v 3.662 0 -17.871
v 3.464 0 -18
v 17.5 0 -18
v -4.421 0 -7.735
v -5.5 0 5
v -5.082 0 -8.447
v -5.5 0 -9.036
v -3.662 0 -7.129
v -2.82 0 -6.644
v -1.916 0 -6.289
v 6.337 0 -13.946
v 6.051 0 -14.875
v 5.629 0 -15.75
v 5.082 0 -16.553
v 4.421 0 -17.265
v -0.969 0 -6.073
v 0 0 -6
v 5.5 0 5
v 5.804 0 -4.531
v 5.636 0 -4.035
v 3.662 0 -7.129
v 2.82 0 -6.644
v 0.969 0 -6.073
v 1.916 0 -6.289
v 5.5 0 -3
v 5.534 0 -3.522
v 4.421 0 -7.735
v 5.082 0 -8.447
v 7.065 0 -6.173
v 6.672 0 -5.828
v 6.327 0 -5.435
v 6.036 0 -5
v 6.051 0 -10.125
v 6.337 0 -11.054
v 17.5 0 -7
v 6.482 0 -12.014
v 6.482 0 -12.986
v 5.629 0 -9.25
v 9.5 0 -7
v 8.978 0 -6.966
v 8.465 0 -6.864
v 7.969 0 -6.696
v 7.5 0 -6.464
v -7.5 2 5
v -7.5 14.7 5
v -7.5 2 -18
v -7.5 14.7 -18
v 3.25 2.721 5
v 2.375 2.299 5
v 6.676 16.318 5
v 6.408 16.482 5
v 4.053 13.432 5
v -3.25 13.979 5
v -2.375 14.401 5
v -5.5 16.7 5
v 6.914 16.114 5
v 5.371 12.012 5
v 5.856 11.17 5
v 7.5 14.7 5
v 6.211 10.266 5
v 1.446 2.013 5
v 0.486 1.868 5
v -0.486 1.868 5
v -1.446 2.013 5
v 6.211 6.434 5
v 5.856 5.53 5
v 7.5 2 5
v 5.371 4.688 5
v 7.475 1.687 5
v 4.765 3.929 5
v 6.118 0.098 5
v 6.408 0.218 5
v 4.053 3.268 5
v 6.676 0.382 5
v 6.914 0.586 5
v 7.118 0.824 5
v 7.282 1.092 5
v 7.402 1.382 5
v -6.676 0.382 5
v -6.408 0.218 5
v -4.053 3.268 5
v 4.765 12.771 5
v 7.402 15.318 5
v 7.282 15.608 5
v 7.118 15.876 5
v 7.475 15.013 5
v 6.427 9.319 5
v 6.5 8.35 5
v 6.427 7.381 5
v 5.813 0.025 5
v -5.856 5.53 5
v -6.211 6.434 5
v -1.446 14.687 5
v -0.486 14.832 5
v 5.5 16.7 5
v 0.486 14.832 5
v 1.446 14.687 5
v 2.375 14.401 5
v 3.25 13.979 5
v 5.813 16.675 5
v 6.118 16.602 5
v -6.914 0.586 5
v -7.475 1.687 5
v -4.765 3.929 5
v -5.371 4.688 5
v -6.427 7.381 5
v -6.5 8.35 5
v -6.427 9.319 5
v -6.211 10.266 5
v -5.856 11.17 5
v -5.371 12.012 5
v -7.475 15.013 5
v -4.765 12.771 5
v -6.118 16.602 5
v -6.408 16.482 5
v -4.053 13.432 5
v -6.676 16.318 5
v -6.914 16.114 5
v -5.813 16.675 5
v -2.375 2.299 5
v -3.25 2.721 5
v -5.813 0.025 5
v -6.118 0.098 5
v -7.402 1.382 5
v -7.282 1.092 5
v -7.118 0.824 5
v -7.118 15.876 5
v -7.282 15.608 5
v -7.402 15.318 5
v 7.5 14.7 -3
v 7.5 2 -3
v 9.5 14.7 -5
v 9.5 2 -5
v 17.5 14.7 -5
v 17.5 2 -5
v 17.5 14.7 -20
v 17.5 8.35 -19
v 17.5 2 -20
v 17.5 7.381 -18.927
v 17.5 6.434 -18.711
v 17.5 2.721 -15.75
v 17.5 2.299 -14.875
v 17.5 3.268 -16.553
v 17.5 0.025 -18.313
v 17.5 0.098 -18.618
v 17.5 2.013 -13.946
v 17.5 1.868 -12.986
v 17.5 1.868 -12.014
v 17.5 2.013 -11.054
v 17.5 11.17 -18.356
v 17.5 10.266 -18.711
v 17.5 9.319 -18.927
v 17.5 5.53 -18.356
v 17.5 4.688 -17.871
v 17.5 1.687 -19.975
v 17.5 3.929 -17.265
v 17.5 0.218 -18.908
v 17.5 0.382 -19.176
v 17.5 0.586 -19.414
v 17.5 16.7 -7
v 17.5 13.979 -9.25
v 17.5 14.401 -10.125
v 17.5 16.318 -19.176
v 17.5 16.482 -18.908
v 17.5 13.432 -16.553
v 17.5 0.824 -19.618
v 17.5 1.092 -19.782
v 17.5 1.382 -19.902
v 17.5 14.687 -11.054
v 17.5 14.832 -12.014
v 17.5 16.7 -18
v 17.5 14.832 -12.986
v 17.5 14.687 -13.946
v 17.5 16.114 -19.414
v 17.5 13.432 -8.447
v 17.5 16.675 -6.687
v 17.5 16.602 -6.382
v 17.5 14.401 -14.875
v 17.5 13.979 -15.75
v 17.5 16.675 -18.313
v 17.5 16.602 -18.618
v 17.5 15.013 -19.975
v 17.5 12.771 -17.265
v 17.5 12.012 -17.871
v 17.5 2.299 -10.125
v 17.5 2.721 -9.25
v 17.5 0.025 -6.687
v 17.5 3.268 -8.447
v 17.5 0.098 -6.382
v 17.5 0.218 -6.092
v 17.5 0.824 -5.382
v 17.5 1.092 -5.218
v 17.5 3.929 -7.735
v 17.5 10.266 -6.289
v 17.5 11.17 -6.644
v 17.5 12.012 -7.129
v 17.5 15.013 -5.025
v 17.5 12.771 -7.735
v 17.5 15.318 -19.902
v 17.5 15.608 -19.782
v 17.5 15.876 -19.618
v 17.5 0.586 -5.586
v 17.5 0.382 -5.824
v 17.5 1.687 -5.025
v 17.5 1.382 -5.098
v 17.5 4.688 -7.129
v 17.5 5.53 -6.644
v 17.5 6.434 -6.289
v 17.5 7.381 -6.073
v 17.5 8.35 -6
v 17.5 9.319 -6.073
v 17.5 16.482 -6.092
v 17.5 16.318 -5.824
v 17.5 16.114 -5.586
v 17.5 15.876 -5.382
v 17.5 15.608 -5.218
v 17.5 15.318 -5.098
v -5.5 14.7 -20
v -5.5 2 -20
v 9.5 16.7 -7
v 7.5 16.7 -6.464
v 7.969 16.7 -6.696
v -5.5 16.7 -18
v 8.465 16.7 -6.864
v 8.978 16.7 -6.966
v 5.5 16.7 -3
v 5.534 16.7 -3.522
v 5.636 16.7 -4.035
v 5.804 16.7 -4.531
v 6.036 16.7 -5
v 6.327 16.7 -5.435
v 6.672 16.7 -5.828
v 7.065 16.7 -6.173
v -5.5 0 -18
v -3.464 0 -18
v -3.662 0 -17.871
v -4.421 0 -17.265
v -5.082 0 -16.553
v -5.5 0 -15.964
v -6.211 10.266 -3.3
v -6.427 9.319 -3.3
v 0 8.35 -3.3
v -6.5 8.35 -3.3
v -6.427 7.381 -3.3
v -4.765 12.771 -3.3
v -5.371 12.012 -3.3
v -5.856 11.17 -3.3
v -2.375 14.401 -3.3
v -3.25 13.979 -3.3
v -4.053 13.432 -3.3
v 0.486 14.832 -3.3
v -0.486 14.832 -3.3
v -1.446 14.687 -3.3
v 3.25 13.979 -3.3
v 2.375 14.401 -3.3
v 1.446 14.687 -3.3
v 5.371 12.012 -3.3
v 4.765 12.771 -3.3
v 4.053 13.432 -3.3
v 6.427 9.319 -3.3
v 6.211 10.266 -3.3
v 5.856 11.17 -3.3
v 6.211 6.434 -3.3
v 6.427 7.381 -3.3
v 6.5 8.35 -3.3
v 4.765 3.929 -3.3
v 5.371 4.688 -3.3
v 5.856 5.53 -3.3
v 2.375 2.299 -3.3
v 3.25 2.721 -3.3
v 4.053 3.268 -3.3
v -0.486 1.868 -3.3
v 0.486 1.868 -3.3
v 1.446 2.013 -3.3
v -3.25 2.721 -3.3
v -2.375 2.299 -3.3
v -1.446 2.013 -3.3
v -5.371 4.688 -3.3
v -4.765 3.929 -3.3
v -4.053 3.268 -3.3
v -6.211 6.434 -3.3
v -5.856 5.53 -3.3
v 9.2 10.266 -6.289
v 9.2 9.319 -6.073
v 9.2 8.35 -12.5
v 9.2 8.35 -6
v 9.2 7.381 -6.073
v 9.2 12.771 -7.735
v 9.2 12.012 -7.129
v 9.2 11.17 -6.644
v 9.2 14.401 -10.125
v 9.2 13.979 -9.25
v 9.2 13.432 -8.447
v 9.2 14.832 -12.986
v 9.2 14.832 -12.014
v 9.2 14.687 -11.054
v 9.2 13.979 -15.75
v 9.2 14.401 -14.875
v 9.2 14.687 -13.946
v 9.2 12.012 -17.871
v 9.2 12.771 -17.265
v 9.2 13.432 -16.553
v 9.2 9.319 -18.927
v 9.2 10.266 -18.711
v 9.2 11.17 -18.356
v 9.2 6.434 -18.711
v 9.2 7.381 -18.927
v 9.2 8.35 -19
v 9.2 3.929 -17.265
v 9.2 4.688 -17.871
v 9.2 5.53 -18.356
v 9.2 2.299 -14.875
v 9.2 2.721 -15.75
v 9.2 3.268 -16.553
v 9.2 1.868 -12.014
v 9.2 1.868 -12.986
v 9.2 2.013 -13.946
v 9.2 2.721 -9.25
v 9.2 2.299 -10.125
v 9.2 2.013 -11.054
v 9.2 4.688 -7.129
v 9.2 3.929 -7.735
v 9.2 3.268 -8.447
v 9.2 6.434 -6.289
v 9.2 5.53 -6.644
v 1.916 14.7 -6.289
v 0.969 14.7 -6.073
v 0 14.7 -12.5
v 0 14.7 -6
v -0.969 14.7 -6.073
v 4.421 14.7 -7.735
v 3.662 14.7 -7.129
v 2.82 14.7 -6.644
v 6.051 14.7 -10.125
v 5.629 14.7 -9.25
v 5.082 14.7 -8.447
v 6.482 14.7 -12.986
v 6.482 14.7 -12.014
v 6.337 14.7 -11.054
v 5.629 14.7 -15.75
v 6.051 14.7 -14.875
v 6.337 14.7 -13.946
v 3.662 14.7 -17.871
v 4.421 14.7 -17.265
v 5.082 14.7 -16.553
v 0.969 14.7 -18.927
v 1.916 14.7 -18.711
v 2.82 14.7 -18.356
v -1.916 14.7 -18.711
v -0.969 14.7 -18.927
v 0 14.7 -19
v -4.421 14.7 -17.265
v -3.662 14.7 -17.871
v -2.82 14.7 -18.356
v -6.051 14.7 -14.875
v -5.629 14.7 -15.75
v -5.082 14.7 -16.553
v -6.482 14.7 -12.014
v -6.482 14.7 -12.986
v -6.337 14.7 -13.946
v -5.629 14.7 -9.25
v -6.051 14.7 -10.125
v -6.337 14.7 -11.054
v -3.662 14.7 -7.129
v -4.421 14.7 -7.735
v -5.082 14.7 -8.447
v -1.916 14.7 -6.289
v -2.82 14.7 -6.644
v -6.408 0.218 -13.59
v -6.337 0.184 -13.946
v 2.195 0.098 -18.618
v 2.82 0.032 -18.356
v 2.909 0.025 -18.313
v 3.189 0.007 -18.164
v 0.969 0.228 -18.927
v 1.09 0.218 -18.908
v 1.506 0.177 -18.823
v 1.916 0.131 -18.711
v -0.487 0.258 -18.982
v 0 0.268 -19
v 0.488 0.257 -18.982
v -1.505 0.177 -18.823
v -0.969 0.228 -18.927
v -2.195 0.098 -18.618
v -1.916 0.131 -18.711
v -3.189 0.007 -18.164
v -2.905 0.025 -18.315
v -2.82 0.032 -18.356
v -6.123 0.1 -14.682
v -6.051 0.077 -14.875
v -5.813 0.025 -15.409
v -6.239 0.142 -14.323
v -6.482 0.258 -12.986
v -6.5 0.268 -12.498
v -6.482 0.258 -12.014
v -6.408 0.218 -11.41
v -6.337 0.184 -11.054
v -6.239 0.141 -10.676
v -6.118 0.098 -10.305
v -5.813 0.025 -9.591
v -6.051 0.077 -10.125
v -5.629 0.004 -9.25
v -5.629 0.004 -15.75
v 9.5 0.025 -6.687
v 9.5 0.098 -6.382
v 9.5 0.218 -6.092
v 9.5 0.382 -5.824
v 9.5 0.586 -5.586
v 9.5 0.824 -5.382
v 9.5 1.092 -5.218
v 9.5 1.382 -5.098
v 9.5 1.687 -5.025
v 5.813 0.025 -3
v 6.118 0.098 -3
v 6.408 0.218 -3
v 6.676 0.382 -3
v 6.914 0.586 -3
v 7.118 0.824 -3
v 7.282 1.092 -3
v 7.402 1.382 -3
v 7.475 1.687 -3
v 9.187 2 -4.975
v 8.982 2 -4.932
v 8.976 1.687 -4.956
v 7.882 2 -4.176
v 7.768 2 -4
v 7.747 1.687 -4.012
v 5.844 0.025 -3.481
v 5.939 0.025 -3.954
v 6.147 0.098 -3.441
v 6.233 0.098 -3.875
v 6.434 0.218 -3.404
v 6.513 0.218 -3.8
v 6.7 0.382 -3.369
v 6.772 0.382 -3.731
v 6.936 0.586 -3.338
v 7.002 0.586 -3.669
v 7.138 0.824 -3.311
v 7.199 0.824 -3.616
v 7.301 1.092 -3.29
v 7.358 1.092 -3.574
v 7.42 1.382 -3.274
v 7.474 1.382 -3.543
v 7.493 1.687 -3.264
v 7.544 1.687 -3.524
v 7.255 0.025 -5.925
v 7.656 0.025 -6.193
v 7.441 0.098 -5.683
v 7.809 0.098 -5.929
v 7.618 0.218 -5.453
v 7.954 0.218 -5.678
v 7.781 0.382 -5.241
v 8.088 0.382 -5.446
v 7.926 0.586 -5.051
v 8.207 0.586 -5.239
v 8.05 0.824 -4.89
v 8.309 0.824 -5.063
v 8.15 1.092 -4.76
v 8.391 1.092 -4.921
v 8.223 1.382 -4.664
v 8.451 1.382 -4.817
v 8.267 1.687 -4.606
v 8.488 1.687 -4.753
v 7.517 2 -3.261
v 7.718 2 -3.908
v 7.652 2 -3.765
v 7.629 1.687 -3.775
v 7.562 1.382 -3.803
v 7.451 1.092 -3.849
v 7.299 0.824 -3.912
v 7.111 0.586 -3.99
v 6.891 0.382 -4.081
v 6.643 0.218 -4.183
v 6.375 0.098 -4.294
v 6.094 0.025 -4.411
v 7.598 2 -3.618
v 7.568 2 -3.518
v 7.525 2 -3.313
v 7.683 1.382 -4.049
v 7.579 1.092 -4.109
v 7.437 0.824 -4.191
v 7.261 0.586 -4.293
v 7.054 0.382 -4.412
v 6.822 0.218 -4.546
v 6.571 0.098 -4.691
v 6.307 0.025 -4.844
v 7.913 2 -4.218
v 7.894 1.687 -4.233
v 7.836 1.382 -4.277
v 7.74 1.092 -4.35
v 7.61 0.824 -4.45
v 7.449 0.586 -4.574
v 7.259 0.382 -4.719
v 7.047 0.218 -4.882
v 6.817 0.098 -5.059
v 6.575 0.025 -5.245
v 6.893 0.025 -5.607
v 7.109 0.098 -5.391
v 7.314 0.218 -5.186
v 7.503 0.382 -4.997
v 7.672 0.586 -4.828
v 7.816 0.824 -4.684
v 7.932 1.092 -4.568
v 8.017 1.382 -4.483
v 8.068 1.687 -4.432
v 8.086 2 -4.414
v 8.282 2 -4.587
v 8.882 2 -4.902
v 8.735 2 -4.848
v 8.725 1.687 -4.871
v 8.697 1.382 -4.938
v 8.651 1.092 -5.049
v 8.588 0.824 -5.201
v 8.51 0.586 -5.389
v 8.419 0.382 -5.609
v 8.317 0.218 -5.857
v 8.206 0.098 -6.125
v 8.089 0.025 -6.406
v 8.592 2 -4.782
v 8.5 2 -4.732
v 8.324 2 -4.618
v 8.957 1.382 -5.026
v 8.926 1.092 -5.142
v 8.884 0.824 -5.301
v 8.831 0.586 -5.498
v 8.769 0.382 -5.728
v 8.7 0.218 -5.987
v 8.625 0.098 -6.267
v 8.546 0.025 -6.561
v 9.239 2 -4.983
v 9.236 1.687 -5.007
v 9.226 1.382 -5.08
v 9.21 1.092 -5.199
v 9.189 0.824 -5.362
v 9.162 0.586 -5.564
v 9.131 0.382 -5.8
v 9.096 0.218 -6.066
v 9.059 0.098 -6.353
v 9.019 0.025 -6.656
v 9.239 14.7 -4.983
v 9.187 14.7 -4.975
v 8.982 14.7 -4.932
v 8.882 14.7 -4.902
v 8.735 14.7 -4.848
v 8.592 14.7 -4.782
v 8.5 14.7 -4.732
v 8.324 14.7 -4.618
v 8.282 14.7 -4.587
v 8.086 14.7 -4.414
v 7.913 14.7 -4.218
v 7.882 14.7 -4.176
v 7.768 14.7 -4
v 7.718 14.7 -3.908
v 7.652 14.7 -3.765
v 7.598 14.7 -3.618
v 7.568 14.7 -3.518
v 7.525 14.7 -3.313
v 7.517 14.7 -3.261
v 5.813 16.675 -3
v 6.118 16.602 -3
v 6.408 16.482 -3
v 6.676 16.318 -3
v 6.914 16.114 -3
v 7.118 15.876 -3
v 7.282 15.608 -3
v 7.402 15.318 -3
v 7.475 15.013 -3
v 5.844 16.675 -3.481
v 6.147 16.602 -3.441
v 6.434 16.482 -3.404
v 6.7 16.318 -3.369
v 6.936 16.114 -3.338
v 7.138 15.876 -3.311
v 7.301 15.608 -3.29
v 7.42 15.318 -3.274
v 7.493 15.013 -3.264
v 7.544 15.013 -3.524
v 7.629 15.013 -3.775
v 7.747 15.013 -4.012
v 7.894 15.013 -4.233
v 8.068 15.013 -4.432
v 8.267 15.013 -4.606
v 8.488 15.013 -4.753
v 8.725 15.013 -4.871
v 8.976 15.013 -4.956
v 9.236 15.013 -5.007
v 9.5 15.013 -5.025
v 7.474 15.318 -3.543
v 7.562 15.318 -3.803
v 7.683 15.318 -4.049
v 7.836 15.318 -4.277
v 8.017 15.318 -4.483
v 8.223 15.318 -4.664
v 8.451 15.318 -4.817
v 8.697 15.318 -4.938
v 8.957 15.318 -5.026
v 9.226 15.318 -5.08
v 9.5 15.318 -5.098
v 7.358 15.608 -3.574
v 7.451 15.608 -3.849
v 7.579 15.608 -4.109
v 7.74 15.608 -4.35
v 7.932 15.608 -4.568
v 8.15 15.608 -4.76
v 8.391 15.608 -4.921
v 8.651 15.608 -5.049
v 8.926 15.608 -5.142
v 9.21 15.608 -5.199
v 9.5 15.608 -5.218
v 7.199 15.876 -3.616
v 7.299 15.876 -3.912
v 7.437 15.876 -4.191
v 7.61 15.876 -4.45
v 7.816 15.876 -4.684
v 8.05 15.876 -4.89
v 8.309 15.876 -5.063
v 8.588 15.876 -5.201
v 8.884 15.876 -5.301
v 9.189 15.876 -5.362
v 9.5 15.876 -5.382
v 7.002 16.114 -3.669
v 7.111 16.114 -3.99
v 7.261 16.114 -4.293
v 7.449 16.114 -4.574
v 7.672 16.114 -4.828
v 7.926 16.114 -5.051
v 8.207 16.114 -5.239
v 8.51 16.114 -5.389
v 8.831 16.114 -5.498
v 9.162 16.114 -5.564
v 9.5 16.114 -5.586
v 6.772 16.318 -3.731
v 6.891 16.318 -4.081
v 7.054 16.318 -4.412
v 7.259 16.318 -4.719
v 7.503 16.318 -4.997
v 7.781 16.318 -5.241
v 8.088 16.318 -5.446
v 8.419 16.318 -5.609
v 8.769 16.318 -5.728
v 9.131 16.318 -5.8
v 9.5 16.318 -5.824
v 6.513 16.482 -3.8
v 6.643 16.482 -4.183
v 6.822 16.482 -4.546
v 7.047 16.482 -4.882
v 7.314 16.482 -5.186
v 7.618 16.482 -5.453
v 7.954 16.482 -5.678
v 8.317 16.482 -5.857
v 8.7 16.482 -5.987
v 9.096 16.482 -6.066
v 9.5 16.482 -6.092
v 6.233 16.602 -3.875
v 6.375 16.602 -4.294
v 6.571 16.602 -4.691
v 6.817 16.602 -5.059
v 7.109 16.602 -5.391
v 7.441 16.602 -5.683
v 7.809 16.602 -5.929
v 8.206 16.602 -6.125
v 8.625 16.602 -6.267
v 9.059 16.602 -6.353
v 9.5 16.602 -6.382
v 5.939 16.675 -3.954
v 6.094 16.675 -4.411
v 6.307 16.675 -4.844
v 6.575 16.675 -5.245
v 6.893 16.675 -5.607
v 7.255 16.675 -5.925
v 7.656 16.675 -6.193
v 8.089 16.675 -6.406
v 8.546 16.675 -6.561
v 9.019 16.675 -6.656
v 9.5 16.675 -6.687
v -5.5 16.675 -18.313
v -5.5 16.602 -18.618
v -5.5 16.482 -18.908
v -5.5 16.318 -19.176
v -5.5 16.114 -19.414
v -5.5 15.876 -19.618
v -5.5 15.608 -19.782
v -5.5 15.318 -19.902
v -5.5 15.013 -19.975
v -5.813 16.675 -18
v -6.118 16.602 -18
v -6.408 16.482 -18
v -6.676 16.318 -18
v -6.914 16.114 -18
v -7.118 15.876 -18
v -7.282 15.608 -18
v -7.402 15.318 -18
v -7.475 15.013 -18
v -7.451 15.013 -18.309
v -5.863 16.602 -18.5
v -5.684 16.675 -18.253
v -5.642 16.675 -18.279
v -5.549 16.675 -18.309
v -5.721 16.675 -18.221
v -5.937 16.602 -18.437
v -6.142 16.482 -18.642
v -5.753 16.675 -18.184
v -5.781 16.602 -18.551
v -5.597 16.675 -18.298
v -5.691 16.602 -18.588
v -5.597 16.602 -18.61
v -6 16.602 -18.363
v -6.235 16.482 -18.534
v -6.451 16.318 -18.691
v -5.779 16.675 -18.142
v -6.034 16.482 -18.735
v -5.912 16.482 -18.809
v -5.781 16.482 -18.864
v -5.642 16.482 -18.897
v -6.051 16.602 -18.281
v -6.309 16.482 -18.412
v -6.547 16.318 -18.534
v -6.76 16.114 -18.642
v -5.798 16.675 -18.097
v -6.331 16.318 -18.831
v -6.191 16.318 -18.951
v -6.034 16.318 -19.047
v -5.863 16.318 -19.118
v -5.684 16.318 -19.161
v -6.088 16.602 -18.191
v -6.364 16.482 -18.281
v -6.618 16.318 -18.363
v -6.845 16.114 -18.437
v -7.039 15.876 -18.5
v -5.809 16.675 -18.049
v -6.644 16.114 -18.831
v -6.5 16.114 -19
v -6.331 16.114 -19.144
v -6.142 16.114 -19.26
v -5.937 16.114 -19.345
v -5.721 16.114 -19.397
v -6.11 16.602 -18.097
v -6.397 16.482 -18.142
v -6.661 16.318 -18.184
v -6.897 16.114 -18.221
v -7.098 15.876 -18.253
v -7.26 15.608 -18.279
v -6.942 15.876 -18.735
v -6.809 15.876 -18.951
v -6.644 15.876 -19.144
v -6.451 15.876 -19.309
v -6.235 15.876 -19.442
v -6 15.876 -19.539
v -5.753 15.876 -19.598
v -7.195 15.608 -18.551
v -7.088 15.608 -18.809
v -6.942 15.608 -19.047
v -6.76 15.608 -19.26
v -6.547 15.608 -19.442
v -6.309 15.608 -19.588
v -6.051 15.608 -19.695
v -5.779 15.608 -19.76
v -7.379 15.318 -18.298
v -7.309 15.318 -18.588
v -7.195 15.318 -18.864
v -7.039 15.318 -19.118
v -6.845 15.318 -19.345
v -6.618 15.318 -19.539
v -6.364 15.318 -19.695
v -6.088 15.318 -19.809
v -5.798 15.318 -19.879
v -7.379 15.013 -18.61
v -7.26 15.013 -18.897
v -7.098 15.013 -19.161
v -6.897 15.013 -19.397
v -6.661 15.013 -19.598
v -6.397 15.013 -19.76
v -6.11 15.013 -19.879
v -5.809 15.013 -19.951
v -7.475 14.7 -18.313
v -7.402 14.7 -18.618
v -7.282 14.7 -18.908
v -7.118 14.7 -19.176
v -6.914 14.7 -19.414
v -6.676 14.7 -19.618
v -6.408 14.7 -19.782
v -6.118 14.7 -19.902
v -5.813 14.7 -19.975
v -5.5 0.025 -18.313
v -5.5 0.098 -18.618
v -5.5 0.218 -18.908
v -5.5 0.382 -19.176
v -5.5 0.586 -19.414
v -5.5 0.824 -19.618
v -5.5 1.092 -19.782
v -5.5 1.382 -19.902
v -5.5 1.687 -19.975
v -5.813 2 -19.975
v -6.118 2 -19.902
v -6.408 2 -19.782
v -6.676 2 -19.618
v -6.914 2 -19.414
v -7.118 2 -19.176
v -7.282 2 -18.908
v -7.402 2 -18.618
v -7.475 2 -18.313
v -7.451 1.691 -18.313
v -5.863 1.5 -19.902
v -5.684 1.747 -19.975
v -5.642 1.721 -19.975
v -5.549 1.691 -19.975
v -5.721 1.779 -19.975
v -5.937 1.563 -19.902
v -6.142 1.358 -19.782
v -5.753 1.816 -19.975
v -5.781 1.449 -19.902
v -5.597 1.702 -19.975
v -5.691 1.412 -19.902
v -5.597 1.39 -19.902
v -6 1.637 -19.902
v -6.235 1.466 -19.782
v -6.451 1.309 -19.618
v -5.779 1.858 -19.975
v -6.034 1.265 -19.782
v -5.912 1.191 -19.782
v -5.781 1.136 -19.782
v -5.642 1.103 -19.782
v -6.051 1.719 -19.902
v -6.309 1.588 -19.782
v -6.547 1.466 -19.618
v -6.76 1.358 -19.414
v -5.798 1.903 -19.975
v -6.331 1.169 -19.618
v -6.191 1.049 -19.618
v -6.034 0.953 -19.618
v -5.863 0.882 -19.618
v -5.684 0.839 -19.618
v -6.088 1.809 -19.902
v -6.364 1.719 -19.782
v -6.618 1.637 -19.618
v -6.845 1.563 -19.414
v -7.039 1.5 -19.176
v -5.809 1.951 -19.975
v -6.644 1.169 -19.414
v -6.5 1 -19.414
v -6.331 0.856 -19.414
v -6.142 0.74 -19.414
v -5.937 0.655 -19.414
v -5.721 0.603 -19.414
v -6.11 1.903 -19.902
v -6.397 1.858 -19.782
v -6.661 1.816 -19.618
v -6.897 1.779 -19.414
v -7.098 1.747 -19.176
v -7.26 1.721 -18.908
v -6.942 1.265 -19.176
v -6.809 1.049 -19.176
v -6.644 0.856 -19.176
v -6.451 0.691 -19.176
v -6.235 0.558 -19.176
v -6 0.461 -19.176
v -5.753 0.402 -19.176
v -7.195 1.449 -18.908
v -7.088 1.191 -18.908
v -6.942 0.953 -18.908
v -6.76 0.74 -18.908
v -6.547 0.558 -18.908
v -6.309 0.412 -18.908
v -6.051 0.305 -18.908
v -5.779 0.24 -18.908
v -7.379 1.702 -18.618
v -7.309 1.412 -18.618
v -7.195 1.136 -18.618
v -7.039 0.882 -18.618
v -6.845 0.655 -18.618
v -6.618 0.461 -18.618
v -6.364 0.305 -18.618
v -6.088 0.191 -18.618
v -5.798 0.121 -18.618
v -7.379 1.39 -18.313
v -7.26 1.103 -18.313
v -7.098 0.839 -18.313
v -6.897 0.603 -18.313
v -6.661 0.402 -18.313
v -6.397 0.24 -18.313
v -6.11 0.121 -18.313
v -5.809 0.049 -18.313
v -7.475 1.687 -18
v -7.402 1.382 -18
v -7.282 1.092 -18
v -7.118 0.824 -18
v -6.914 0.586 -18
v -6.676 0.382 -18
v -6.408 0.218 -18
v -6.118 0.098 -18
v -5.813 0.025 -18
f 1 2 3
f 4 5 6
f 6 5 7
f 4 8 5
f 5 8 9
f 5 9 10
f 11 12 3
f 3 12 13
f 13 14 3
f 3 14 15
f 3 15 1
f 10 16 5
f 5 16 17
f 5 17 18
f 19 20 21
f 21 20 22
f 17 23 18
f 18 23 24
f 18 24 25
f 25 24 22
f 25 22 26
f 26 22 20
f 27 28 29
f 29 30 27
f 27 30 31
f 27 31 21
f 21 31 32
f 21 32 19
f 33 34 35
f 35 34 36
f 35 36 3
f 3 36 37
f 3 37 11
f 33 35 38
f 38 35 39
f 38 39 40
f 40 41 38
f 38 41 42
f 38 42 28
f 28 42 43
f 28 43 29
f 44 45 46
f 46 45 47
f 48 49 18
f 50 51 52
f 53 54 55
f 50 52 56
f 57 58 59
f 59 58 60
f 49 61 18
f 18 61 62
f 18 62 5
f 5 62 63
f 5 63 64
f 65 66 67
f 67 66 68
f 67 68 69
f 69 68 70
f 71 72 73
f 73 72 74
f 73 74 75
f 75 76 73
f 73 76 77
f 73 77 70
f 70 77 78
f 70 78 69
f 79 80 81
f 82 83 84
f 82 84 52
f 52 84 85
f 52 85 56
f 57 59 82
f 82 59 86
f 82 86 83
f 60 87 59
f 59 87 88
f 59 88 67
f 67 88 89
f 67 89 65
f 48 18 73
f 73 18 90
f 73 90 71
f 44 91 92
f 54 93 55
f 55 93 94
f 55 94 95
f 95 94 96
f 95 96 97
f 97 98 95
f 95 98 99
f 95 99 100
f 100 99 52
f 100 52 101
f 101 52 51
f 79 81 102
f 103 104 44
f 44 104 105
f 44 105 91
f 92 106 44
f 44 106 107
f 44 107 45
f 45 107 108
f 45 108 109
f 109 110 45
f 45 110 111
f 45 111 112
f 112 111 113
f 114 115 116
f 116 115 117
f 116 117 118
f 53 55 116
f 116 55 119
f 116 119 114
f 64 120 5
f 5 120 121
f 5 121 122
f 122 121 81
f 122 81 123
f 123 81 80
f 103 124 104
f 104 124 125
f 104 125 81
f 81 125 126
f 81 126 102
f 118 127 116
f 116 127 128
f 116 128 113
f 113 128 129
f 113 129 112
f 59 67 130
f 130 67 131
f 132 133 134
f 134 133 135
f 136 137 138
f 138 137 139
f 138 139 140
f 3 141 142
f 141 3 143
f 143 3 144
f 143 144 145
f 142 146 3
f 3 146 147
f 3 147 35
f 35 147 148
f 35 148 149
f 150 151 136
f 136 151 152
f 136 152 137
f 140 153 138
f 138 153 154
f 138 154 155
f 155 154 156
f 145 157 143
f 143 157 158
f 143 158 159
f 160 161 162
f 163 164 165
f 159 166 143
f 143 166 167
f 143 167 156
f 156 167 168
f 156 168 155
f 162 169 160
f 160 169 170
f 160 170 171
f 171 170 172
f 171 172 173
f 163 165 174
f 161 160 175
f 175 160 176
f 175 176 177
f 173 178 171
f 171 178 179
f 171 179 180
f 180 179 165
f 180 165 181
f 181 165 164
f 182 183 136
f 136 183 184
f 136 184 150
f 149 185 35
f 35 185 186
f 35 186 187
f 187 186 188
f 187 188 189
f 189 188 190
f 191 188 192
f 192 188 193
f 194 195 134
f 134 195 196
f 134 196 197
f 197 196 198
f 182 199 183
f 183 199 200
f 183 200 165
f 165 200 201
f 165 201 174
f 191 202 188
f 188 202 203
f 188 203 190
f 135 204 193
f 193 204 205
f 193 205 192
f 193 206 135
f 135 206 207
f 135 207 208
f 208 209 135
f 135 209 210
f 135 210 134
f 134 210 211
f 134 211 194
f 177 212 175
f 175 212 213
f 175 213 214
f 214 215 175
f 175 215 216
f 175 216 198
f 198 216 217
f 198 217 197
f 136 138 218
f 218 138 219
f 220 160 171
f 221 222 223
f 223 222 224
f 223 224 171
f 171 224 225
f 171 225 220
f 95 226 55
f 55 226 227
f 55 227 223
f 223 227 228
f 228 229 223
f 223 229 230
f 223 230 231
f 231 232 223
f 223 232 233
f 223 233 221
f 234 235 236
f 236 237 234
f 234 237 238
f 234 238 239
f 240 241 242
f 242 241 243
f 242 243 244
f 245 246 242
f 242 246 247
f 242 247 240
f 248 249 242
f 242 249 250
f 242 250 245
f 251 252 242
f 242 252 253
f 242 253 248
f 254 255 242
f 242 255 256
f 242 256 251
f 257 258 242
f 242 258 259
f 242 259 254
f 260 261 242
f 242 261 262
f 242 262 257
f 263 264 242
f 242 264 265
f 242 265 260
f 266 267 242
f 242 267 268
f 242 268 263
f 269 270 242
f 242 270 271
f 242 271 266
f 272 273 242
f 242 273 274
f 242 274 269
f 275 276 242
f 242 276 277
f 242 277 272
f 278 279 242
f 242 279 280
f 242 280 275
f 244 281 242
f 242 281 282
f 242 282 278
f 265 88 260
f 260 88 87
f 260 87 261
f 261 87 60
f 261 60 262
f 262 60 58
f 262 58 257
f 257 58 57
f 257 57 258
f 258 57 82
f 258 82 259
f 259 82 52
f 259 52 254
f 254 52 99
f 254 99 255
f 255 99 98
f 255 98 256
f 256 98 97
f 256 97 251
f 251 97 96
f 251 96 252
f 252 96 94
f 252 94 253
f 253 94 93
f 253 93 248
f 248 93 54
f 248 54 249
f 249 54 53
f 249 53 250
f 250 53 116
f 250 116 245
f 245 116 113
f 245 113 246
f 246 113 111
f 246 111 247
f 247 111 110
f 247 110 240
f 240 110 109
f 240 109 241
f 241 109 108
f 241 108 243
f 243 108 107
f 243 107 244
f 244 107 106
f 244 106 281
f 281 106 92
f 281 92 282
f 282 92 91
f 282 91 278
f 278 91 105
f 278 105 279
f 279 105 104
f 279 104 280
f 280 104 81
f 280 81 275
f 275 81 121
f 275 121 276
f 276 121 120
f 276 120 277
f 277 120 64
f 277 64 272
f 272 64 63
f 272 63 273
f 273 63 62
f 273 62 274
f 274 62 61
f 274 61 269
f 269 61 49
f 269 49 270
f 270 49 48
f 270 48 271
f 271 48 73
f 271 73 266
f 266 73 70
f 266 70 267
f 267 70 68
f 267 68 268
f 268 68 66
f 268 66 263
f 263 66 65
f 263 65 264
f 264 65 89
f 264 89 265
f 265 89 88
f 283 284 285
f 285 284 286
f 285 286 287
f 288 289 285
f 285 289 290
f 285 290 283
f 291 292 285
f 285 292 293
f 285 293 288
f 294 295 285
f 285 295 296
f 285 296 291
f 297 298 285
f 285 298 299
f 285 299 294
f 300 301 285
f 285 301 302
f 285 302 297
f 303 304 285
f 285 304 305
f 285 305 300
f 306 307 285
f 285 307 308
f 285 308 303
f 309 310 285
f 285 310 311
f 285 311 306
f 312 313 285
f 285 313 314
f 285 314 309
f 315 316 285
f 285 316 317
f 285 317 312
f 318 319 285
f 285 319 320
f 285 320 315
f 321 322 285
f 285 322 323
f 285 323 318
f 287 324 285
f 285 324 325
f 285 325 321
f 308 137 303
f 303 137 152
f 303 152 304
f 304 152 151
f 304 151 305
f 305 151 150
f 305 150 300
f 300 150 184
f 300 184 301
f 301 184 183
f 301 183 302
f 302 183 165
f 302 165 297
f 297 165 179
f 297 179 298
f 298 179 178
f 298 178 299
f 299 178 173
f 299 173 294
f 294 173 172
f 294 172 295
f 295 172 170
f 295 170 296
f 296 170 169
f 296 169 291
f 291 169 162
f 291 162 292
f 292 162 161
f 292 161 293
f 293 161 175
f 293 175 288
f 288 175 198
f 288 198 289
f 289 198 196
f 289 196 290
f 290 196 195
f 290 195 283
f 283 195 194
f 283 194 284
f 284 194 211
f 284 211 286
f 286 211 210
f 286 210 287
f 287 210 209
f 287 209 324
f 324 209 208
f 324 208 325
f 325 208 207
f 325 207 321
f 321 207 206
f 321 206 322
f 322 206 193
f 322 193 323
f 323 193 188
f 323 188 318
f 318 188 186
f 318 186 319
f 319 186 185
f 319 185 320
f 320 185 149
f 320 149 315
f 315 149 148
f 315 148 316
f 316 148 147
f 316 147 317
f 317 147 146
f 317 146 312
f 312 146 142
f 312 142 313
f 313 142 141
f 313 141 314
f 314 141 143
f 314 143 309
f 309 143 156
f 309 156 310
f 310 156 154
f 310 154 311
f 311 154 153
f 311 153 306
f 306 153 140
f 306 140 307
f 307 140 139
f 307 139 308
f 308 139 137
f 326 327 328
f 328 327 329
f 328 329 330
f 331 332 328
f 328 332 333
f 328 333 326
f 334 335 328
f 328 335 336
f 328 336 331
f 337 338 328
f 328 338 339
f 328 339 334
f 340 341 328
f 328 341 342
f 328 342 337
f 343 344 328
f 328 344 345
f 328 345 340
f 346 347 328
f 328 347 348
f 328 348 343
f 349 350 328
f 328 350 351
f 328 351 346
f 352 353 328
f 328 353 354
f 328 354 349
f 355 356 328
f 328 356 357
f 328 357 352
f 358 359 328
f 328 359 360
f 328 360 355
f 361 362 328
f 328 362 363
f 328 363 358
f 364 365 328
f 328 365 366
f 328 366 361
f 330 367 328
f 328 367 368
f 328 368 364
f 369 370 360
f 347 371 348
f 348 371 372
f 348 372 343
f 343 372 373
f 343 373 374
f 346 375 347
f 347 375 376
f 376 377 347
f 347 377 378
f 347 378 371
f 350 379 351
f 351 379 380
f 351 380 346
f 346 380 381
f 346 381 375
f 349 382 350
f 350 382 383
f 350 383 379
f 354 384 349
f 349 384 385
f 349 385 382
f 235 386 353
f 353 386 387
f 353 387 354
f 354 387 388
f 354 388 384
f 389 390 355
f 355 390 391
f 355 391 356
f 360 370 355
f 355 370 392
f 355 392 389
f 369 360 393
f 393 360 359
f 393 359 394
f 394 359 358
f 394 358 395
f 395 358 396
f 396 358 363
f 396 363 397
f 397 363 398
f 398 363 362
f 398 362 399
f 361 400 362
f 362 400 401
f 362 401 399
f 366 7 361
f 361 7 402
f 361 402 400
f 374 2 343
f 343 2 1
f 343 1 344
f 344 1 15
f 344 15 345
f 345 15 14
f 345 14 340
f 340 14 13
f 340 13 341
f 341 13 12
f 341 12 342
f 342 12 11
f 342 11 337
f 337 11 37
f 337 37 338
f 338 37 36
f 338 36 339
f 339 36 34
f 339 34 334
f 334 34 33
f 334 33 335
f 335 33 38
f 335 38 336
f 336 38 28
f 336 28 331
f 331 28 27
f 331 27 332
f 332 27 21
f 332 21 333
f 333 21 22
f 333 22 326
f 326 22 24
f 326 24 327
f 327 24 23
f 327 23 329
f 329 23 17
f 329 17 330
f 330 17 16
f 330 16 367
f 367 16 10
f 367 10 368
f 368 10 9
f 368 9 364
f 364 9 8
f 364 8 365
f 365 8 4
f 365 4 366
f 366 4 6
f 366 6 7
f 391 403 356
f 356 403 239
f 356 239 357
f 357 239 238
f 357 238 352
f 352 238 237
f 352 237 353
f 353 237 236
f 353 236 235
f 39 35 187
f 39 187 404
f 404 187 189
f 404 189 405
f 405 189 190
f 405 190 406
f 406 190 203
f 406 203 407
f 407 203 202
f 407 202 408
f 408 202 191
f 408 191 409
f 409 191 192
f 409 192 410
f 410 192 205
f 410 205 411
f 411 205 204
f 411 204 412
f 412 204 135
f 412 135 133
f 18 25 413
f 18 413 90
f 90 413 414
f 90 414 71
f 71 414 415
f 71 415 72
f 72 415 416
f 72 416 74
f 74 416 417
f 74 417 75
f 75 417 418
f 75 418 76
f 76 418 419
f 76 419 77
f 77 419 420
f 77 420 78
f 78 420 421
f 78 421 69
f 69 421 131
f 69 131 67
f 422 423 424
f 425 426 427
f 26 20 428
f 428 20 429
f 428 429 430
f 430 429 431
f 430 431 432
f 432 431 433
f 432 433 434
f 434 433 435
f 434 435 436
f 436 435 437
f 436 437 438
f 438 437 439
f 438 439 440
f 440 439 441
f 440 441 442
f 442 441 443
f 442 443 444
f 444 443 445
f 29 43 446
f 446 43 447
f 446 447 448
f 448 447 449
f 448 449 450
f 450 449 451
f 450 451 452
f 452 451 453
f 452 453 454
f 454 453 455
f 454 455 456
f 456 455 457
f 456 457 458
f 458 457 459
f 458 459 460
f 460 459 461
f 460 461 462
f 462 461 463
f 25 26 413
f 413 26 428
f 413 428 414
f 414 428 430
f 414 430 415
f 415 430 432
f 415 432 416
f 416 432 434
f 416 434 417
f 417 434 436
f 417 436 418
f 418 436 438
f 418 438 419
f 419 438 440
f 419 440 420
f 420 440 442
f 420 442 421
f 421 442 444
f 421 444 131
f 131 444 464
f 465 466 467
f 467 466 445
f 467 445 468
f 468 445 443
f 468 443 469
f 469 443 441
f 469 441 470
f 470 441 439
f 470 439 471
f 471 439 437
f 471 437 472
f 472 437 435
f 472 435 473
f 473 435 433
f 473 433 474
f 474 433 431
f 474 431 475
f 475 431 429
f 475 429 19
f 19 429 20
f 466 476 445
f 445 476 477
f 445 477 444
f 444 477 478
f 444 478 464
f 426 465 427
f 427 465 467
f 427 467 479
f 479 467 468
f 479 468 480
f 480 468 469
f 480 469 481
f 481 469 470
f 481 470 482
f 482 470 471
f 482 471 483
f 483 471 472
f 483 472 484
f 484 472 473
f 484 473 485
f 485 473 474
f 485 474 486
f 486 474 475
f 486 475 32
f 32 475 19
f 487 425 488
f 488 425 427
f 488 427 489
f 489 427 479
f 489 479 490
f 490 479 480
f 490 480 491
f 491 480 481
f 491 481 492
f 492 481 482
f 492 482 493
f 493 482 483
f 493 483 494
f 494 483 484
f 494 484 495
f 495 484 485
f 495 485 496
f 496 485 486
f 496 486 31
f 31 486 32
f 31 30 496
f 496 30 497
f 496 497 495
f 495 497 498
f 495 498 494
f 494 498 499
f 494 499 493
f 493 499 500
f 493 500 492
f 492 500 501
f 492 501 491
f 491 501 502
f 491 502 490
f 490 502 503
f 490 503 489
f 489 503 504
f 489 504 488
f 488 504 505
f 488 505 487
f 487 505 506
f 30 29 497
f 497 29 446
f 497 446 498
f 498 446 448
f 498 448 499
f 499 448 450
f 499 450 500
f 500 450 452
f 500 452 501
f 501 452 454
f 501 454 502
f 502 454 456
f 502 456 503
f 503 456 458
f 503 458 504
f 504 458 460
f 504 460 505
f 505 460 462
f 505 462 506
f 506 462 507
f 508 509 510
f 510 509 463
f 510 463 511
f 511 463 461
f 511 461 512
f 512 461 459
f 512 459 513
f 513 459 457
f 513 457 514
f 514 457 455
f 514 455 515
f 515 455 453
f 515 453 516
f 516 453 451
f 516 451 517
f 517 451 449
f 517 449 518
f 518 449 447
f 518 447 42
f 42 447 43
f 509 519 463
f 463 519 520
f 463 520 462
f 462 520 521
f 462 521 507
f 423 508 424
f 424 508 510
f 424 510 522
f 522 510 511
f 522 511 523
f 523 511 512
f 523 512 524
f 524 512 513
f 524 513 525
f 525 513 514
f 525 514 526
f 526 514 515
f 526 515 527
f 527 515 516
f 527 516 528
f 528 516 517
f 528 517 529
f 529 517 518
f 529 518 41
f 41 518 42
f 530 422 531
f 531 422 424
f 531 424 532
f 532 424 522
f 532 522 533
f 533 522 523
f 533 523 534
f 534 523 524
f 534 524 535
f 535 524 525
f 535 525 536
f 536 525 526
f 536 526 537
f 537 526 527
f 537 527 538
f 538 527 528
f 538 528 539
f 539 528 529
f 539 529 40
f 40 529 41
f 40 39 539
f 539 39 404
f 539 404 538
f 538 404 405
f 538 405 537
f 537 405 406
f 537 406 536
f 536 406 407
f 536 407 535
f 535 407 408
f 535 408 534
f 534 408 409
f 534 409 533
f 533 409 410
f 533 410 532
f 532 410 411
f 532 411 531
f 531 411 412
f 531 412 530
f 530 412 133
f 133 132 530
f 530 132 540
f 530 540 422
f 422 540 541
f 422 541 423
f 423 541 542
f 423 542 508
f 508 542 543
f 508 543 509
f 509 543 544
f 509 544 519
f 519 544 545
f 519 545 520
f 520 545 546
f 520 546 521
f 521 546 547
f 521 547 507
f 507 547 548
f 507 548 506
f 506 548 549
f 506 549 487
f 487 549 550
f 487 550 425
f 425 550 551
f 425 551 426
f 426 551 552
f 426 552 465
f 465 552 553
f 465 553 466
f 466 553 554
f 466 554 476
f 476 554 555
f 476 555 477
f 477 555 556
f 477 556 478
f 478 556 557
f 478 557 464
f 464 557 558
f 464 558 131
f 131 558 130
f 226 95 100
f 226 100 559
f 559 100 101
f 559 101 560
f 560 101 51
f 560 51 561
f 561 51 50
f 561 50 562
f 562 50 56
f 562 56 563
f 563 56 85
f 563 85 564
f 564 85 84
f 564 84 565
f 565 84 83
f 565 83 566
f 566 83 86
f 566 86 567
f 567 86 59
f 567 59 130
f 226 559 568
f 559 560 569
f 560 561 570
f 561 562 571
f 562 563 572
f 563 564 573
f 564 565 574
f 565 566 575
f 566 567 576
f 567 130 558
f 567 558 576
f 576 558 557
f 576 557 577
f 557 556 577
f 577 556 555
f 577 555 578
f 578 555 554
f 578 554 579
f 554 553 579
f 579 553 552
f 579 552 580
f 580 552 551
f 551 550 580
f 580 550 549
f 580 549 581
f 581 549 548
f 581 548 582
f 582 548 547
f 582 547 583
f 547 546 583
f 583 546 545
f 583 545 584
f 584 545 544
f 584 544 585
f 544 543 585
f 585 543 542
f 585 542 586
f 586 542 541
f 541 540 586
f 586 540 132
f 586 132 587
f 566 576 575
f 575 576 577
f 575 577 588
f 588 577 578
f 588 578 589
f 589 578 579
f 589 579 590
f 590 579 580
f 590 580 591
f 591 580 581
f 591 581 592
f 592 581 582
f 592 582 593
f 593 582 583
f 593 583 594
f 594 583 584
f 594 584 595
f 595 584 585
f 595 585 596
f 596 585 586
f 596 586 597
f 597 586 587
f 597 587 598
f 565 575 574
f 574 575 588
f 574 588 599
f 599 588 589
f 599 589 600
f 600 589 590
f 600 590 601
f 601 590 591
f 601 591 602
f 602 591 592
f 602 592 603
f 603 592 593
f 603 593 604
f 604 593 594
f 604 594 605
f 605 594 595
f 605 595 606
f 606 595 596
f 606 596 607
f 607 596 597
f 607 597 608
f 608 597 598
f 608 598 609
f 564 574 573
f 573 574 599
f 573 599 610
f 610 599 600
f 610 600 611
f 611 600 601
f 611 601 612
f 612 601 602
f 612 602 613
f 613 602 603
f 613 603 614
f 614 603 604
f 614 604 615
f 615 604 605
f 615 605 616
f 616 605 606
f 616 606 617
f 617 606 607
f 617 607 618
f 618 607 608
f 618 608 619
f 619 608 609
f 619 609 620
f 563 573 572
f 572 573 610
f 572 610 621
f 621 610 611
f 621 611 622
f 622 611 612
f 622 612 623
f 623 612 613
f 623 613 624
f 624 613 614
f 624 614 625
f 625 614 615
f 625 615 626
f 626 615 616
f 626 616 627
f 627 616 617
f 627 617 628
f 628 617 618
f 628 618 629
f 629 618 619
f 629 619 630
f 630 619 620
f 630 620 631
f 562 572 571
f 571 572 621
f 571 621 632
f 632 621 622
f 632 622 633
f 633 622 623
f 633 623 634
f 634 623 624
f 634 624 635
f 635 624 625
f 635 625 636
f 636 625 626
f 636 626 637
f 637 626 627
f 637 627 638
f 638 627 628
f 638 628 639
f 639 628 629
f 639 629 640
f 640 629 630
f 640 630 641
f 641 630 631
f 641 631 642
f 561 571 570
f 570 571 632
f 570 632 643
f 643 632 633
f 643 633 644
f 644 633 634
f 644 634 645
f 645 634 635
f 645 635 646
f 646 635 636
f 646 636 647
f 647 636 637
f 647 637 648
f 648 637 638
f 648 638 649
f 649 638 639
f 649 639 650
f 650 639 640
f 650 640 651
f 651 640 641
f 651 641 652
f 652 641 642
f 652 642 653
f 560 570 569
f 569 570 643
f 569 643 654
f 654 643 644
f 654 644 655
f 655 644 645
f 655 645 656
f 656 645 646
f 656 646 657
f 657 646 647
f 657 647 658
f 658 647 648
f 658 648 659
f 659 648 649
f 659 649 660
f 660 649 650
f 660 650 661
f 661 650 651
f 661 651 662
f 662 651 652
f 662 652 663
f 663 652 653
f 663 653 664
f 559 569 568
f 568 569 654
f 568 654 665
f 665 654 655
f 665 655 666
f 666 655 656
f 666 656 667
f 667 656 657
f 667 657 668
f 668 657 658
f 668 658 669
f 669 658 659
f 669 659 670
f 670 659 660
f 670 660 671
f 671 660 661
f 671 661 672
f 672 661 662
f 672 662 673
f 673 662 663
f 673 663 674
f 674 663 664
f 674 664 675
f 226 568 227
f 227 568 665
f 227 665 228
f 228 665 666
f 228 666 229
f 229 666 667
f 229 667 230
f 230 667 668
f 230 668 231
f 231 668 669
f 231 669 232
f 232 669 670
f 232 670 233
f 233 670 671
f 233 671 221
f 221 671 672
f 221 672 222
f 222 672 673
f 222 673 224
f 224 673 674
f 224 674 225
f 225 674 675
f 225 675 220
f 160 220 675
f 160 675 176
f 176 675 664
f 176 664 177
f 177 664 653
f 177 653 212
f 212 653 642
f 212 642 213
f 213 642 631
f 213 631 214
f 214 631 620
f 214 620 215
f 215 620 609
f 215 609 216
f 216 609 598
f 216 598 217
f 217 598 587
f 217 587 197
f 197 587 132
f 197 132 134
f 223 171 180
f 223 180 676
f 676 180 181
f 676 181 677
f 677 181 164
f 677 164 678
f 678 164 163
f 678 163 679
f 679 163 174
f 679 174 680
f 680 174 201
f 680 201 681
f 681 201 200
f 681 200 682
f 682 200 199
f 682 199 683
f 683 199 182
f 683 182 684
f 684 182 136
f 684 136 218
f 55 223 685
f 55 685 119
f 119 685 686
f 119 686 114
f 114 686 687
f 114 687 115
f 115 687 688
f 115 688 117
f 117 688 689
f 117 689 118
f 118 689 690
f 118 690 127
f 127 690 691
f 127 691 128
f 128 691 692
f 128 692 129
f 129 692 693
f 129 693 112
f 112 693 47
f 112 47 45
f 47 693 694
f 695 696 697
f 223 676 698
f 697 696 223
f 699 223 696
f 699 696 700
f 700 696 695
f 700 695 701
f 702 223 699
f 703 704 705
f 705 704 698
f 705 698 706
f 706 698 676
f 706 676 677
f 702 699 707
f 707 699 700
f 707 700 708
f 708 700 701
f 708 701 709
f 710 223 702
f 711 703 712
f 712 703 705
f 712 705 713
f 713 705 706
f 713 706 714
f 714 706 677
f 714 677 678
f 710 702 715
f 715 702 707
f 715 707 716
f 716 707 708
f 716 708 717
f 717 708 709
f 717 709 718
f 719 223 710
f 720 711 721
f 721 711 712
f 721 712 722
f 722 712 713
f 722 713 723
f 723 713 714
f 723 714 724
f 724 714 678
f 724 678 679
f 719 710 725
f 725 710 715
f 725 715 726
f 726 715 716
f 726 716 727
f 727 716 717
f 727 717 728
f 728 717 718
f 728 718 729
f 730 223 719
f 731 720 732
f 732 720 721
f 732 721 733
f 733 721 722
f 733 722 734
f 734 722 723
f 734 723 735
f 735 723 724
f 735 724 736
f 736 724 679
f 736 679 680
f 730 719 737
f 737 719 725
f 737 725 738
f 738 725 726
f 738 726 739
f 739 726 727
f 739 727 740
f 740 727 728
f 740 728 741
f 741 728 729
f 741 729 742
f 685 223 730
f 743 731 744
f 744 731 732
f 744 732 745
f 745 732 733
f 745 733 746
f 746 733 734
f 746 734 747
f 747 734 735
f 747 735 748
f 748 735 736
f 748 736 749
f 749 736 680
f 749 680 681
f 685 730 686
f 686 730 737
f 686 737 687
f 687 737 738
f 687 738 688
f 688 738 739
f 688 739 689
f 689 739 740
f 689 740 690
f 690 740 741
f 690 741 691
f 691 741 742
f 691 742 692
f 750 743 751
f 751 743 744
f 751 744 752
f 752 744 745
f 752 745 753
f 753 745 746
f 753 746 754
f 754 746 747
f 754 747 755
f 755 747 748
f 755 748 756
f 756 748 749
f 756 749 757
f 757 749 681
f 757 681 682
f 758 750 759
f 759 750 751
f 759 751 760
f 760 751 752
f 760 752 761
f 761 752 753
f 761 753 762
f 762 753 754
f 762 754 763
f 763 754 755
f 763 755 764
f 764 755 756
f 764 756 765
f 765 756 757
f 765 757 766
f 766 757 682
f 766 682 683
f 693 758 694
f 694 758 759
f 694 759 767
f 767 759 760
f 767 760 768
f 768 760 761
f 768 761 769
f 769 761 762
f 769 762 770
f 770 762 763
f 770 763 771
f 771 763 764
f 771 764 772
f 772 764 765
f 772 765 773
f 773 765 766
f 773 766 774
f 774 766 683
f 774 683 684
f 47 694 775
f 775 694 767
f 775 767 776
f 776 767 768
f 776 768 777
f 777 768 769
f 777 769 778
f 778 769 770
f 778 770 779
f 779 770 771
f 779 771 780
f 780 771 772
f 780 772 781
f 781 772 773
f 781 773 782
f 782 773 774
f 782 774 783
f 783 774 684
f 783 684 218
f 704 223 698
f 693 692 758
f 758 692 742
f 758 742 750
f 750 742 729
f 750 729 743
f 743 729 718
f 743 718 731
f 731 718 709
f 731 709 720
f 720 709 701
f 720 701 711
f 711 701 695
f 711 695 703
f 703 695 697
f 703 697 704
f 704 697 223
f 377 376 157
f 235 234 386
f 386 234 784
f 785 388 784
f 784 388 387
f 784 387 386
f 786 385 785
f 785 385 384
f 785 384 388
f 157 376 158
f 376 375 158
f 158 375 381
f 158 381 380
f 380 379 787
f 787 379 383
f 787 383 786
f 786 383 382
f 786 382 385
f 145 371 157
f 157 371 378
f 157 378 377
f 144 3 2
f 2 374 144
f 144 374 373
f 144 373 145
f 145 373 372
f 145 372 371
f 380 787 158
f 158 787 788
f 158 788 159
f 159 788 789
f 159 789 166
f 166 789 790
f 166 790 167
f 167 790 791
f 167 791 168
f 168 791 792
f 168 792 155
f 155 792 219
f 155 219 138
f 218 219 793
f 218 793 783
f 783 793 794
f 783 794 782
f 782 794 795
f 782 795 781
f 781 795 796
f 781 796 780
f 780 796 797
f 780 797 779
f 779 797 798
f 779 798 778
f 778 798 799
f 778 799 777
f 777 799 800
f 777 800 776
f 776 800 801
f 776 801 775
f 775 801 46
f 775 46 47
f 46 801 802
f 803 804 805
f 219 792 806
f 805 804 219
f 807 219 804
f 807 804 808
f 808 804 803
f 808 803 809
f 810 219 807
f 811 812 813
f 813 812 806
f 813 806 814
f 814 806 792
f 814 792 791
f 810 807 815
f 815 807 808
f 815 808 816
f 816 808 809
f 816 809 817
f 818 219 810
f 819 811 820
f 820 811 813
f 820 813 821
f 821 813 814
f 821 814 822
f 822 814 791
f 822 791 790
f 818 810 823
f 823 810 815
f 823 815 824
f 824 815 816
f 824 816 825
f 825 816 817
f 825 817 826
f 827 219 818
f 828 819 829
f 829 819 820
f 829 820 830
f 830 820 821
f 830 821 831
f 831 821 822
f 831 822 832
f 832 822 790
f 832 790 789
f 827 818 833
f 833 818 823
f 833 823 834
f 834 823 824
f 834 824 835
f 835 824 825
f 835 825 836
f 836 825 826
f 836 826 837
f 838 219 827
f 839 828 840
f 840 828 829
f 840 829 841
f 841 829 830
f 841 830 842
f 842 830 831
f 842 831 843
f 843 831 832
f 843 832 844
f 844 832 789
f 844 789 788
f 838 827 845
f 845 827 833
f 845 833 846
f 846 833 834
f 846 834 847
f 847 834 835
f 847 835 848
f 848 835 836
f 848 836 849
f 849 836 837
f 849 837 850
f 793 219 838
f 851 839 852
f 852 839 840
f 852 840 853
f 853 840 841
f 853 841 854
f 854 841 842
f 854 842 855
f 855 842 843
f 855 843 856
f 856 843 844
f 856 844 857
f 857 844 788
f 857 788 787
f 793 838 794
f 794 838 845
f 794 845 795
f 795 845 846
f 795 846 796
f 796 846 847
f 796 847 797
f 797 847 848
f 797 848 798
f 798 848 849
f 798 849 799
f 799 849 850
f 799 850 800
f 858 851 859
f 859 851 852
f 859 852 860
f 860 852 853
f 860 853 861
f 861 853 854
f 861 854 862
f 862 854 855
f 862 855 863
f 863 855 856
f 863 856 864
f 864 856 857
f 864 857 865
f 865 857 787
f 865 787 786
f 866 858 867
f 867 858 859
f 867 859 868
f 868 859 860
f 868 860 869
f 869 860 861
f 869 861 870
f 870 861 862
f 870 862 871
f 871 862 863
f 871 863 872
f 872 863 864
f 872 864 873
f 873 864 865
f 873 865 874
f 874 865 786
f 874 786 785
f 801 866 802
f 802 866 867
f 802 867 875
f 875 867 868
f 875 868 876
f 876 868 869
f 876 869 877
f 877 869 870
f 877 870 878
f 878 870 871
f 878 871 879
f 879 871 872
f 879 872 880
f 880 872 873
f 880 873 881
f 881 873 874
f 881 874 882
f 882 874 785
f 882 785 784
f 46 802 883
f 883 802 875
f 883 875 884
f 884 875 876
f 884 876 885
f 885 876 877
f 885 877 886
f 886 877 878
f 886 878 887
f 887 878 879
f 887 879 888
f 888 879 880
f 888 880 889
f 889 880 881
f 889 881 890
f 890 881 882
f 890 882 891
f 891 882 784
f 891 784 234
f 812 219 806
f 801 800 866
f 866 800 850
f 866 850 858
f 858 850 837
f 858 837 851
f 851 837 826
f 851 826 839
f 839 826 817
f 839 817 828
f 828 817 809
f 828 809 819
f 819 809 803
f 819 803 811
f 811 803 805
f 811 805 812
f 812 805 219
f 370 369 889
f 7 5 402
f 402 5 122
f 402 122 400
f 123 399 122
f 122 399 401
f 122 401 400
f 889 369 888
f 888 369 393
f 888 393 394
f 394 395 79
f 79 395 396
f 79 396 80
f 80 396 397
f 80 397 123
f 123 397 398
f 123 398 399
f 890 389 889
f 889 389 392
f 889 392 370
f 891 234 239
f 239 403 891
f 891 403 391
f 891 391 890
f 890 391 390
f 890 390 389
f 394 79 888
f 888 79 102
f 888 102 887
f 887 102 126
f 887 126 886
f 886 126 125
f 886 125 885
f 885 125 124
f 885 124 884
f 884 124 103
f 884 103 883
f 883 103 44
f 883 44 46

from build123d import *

# Parameters (mm, degrees)
SKETCH1_W           = 15
SKETCH1_H           = 10
SKETCH1_H_2         = 15
SKETCH1_W_2         = 10
BOSS_EXTRUDE1_DEPTH = 16.7
SKETCH2_R           = 6.5
CUT_EXTRUDE1_DEPTH  = 8.3
SKETCH3_R           = 6.5
CUT_EXTRUDE2_DEPTH  = 8.3
SKETCH4_R           = 6.5
CUT_EXTRUDE3_DEPTH  = 14.7
FILLET8_R           = 2


with BuildPart() as part:
    # Sketch1 → Boss-Extrude1 (new body)
    with BuildSketch(Plane(origin=(0, 0, 0), x_dir=(1, 0, 0), z_dir=(0, 1, 0))):
        Rectangle(SKETCH1_W, SKETCH1_H)
        with Locations((0, 12.5)):
            Rectangle(SKETCH1_W, SKETCH1_H_2)
        with Locations((12.5, 12.5)):
            Rectangle(SKETCH1_W_2, SKETCH1_H_2)
    extrude(amount=BOSS_EXTRUDE1_DEPTH)

    # Sketch2 → Cut-Extrude1 (cut)
    with BuildSketch(Plane.XY.offset(5)):
        with Locations((0, 8.35)):
            Circle(SKETCH2_R)
    extrude(amount=-CUT_EXTRUDE1_DEPTH, mode=Mode.SUBTRACT)

    # Sketch3 → Cut-Extrude2 (cut)
    with BuildSketch(Plane(origin=(17.5, 0, 0), x_dir=(0, 0, -1), z_dir=(1, 0, 0))):
        with Locations((12.5, 8.35)):
            Circle(SKETCH3_R)
    extrude(amount=-CUT_EXTRUDE2_DEPTH, mode=Mode.SUBTRACT)

    # Sketch4 → Cut-Extrude3 (cut)
    with BuildSketch(Plane.XZ):
        with Locations(Location((0, -12.5, 0), (0, 0, 270))):
            Circle(SKETCH4_R)
    extrude(amount=-CUT_EXTRUDE3_DEPTH, mode=Mode.SUBTRACT)

    # Fillet8
    # the kernel refuses this fillet: 2 mm, written as the material it adds along each edge
    with BuildSketch(Plane(origin=(7.5, 0, -5), x_dir=(0, 0, 1), z_dir=(0, 1, 0))) as fillet8_piece_1:
        with BuildLine():
            CenterArc((FILLET8_R, FILLET8_R), FILLET8_R, 180, 90)
            Line((0, FILLET8_R), (0, 0))
            Line((0, 0), (FILLET8_R, 0))
        make_face()
    extrude(amount=16.7)
    # the kernel refuses this fillet: 2 mm, written as the material it takes off along each edge
    with BuildSketch(Plane(origin=(-5.5, 2, -18), x_dir=(0, 0, -1), z_dir=(-1, 0, 0))) as fillet8_2_piece_1_section:
        Polygon((0, 0), (FILLET8_R, 0), (FILLET8_R, FILLET8_R), (0, FILLET8_R), align=None)
    fillet8_2_piece_1 = extrude(amount=FILLET8_R, mode=Mode.PRIVATE)
    fillet8_2_piece_1 = fillet8_2_piece_1 - Plane(origin=(-5.5, 2, -18), x_dir=(0, 0.7071067811865475, 0.7071067811865475), z_dir=(-1, 0, 0)) * Sphere(FILLET8_R, mode=Mode.PRIVATE)
    add(fillet8_2_piece_1, mode=Mode.SUBTRACT)
    with BuildSketch(Plane(origin=(-5.5, 14.7, -18), x_dir=(0, 1, 0), z_dir=(-1, 0, 0))) as fillet8_2_piece_2_section:
        Polygon((0, 0), (FILLET8_R, 0), (FILLET8_R, FILLET8_R), (0, FILLET8_R), align=None)
    fillet8_2_piece_2 = extrude(amount=FILLET8_R, mode=Mode.PRIVATE)
    fillet8_2_piece_2 = fillet8_2_piece_2 - Plane(origin=(-5.5, 14.7, -18), x_dir=(0, -0.7071067811865475, 0.7071067811865475), z_dir=(-1, 0, 0)) * Sphere(FILLET8_R, mode=Mode.PRIVATE)
    add(fillet8_2_piece_2, mode=Mode.SUBTRACT)
    with BuildSketch(Plane(origin=(-7.5, 0, -18), x_dir=(0, 1, 0), z_dir=(0, 0, 1)), Plane(origin=(22.5, 16.7, -20), x_dir=(0, 0, 1), z_dir=(-1, 0, 0)), Plane(origin=(-7.5, 16.7, 10), x_dir=(0, -1, 0), z_dir=(0, 0, -1)), Plane(origin=(22.5, 0, -20), x_dir=(0, 1, 0), z_dir=(-1, 0, 0))) as fillet8_2_piece_3:
        with BuildLine():
            CenterArc((FILLET8_R, -FILLET8_R), FILLET8_R, 90, 90)
            Line((0, -FILLET8_R), (0, 0))
            Line((0, 0), (FILLET8_R, 0))
        make_face()
    extrude(amount=28, mode=Mode.SUBTRACT)
    with BuildSketch(Plane(origin=(-7.5, 2, -20), x_dir=(0, 0, 1), z_dir=(0, 1, 0))) as fillet8_2_piece_4:
        with BuildLine():
            CenterArc((FILLET8_R, FILLET8_R), FILLET8_R, 180, 90)
            Line((0, FILLET8_R), (0, 0))
            Line((0, 0), (FILLET8_R, 0))
        make_face()
    extrude(amount=12.7, mode=Mode.SUBTRACT)
    # the kernel refuses this fillet: 2 mm, written as the material it takes off along each edge
    with BuildSketch(Plane(origin=(7.5, 16.7, 10), x_dir=(-1, 0, 0), z_dir=(0, 0, -1)), Plane(origin=(9.5, 16.7, -5), x_dir=(0, 0, -1), z_dir=(1, 0, 0)), Plane(origin=(7.5, 0, -3), x_dir=(-1, 0, 0), z_dir=(0, 0, 1))) as fillet8_3_piece_1:
        with BuildLine():
            CenterArc((FILLET8_R, -FILLET8_R), FILLET8_R, 90, 90)
            Line((0, -FILLET8_R), (0, 0))
            Line((0, 0), (FILLET8_R, 0))
        make_face()
    extrude(amount=13, mode=Mode.SUBTRACT)
    with BuildSketch(Plane(origin=(9.5, 0, -5), x_dir=(0, 0, -1), z_dir=(1, 0, 0))) as fillet8_3_piece_2:
        with BuildLine():
            CenterArc((FILLET8_R, FILLET8_R), FILLET8_R, 180, 90)
            Line((0, FILLET8_R), (0, 0))
            Line((0, 0), (FILLET8_R, 0))
        make_face()
    extrude(amount=13, mode=Mode.SUBTRACT)
    with BuildSketch(Plane(origin=(9.5, 0, -3), x_dir=(-1, 0, 0), z_dir=(0, 0, 1))) as fillet8_3_piece_3:
        with BuildLine():
            CenterArc((2 + FILLET8_R, -FILLET8_R), FILLET8_R, 90, 90)
            Line((2, -FILLET8_R), (2, 0))
            Line((2, 0), (2 + FILLET8_R, 0))
        make_face()
    revolve(axis=Axis((9.5, 0, -3), (0, -1, 0)), revolution_arc=90, mode=Mode.SUBTRACT)
    with BuildSketch(Plane(origin=(9.5, 16.7, -3), x_dir=(-1, 0, 0), z_dir=(0, 0, 1))) as fillet8_3_piece_4:
        with BuildLine():
            CenterArc((2 + FILLET8_R, FILLET8_R), FILLET8_R, 180, 90)
            Line((2, FILLET8_R), (2, 0))
            Line((2, 0), (2 + FILLET8_R, 0))
        make_face()
    revolve(axis=Axis((9.5, 16.7, -3), (0, -1, 0)), revolution_arc=90, mode=Mode.SUBTRACT)


solid = part.part
